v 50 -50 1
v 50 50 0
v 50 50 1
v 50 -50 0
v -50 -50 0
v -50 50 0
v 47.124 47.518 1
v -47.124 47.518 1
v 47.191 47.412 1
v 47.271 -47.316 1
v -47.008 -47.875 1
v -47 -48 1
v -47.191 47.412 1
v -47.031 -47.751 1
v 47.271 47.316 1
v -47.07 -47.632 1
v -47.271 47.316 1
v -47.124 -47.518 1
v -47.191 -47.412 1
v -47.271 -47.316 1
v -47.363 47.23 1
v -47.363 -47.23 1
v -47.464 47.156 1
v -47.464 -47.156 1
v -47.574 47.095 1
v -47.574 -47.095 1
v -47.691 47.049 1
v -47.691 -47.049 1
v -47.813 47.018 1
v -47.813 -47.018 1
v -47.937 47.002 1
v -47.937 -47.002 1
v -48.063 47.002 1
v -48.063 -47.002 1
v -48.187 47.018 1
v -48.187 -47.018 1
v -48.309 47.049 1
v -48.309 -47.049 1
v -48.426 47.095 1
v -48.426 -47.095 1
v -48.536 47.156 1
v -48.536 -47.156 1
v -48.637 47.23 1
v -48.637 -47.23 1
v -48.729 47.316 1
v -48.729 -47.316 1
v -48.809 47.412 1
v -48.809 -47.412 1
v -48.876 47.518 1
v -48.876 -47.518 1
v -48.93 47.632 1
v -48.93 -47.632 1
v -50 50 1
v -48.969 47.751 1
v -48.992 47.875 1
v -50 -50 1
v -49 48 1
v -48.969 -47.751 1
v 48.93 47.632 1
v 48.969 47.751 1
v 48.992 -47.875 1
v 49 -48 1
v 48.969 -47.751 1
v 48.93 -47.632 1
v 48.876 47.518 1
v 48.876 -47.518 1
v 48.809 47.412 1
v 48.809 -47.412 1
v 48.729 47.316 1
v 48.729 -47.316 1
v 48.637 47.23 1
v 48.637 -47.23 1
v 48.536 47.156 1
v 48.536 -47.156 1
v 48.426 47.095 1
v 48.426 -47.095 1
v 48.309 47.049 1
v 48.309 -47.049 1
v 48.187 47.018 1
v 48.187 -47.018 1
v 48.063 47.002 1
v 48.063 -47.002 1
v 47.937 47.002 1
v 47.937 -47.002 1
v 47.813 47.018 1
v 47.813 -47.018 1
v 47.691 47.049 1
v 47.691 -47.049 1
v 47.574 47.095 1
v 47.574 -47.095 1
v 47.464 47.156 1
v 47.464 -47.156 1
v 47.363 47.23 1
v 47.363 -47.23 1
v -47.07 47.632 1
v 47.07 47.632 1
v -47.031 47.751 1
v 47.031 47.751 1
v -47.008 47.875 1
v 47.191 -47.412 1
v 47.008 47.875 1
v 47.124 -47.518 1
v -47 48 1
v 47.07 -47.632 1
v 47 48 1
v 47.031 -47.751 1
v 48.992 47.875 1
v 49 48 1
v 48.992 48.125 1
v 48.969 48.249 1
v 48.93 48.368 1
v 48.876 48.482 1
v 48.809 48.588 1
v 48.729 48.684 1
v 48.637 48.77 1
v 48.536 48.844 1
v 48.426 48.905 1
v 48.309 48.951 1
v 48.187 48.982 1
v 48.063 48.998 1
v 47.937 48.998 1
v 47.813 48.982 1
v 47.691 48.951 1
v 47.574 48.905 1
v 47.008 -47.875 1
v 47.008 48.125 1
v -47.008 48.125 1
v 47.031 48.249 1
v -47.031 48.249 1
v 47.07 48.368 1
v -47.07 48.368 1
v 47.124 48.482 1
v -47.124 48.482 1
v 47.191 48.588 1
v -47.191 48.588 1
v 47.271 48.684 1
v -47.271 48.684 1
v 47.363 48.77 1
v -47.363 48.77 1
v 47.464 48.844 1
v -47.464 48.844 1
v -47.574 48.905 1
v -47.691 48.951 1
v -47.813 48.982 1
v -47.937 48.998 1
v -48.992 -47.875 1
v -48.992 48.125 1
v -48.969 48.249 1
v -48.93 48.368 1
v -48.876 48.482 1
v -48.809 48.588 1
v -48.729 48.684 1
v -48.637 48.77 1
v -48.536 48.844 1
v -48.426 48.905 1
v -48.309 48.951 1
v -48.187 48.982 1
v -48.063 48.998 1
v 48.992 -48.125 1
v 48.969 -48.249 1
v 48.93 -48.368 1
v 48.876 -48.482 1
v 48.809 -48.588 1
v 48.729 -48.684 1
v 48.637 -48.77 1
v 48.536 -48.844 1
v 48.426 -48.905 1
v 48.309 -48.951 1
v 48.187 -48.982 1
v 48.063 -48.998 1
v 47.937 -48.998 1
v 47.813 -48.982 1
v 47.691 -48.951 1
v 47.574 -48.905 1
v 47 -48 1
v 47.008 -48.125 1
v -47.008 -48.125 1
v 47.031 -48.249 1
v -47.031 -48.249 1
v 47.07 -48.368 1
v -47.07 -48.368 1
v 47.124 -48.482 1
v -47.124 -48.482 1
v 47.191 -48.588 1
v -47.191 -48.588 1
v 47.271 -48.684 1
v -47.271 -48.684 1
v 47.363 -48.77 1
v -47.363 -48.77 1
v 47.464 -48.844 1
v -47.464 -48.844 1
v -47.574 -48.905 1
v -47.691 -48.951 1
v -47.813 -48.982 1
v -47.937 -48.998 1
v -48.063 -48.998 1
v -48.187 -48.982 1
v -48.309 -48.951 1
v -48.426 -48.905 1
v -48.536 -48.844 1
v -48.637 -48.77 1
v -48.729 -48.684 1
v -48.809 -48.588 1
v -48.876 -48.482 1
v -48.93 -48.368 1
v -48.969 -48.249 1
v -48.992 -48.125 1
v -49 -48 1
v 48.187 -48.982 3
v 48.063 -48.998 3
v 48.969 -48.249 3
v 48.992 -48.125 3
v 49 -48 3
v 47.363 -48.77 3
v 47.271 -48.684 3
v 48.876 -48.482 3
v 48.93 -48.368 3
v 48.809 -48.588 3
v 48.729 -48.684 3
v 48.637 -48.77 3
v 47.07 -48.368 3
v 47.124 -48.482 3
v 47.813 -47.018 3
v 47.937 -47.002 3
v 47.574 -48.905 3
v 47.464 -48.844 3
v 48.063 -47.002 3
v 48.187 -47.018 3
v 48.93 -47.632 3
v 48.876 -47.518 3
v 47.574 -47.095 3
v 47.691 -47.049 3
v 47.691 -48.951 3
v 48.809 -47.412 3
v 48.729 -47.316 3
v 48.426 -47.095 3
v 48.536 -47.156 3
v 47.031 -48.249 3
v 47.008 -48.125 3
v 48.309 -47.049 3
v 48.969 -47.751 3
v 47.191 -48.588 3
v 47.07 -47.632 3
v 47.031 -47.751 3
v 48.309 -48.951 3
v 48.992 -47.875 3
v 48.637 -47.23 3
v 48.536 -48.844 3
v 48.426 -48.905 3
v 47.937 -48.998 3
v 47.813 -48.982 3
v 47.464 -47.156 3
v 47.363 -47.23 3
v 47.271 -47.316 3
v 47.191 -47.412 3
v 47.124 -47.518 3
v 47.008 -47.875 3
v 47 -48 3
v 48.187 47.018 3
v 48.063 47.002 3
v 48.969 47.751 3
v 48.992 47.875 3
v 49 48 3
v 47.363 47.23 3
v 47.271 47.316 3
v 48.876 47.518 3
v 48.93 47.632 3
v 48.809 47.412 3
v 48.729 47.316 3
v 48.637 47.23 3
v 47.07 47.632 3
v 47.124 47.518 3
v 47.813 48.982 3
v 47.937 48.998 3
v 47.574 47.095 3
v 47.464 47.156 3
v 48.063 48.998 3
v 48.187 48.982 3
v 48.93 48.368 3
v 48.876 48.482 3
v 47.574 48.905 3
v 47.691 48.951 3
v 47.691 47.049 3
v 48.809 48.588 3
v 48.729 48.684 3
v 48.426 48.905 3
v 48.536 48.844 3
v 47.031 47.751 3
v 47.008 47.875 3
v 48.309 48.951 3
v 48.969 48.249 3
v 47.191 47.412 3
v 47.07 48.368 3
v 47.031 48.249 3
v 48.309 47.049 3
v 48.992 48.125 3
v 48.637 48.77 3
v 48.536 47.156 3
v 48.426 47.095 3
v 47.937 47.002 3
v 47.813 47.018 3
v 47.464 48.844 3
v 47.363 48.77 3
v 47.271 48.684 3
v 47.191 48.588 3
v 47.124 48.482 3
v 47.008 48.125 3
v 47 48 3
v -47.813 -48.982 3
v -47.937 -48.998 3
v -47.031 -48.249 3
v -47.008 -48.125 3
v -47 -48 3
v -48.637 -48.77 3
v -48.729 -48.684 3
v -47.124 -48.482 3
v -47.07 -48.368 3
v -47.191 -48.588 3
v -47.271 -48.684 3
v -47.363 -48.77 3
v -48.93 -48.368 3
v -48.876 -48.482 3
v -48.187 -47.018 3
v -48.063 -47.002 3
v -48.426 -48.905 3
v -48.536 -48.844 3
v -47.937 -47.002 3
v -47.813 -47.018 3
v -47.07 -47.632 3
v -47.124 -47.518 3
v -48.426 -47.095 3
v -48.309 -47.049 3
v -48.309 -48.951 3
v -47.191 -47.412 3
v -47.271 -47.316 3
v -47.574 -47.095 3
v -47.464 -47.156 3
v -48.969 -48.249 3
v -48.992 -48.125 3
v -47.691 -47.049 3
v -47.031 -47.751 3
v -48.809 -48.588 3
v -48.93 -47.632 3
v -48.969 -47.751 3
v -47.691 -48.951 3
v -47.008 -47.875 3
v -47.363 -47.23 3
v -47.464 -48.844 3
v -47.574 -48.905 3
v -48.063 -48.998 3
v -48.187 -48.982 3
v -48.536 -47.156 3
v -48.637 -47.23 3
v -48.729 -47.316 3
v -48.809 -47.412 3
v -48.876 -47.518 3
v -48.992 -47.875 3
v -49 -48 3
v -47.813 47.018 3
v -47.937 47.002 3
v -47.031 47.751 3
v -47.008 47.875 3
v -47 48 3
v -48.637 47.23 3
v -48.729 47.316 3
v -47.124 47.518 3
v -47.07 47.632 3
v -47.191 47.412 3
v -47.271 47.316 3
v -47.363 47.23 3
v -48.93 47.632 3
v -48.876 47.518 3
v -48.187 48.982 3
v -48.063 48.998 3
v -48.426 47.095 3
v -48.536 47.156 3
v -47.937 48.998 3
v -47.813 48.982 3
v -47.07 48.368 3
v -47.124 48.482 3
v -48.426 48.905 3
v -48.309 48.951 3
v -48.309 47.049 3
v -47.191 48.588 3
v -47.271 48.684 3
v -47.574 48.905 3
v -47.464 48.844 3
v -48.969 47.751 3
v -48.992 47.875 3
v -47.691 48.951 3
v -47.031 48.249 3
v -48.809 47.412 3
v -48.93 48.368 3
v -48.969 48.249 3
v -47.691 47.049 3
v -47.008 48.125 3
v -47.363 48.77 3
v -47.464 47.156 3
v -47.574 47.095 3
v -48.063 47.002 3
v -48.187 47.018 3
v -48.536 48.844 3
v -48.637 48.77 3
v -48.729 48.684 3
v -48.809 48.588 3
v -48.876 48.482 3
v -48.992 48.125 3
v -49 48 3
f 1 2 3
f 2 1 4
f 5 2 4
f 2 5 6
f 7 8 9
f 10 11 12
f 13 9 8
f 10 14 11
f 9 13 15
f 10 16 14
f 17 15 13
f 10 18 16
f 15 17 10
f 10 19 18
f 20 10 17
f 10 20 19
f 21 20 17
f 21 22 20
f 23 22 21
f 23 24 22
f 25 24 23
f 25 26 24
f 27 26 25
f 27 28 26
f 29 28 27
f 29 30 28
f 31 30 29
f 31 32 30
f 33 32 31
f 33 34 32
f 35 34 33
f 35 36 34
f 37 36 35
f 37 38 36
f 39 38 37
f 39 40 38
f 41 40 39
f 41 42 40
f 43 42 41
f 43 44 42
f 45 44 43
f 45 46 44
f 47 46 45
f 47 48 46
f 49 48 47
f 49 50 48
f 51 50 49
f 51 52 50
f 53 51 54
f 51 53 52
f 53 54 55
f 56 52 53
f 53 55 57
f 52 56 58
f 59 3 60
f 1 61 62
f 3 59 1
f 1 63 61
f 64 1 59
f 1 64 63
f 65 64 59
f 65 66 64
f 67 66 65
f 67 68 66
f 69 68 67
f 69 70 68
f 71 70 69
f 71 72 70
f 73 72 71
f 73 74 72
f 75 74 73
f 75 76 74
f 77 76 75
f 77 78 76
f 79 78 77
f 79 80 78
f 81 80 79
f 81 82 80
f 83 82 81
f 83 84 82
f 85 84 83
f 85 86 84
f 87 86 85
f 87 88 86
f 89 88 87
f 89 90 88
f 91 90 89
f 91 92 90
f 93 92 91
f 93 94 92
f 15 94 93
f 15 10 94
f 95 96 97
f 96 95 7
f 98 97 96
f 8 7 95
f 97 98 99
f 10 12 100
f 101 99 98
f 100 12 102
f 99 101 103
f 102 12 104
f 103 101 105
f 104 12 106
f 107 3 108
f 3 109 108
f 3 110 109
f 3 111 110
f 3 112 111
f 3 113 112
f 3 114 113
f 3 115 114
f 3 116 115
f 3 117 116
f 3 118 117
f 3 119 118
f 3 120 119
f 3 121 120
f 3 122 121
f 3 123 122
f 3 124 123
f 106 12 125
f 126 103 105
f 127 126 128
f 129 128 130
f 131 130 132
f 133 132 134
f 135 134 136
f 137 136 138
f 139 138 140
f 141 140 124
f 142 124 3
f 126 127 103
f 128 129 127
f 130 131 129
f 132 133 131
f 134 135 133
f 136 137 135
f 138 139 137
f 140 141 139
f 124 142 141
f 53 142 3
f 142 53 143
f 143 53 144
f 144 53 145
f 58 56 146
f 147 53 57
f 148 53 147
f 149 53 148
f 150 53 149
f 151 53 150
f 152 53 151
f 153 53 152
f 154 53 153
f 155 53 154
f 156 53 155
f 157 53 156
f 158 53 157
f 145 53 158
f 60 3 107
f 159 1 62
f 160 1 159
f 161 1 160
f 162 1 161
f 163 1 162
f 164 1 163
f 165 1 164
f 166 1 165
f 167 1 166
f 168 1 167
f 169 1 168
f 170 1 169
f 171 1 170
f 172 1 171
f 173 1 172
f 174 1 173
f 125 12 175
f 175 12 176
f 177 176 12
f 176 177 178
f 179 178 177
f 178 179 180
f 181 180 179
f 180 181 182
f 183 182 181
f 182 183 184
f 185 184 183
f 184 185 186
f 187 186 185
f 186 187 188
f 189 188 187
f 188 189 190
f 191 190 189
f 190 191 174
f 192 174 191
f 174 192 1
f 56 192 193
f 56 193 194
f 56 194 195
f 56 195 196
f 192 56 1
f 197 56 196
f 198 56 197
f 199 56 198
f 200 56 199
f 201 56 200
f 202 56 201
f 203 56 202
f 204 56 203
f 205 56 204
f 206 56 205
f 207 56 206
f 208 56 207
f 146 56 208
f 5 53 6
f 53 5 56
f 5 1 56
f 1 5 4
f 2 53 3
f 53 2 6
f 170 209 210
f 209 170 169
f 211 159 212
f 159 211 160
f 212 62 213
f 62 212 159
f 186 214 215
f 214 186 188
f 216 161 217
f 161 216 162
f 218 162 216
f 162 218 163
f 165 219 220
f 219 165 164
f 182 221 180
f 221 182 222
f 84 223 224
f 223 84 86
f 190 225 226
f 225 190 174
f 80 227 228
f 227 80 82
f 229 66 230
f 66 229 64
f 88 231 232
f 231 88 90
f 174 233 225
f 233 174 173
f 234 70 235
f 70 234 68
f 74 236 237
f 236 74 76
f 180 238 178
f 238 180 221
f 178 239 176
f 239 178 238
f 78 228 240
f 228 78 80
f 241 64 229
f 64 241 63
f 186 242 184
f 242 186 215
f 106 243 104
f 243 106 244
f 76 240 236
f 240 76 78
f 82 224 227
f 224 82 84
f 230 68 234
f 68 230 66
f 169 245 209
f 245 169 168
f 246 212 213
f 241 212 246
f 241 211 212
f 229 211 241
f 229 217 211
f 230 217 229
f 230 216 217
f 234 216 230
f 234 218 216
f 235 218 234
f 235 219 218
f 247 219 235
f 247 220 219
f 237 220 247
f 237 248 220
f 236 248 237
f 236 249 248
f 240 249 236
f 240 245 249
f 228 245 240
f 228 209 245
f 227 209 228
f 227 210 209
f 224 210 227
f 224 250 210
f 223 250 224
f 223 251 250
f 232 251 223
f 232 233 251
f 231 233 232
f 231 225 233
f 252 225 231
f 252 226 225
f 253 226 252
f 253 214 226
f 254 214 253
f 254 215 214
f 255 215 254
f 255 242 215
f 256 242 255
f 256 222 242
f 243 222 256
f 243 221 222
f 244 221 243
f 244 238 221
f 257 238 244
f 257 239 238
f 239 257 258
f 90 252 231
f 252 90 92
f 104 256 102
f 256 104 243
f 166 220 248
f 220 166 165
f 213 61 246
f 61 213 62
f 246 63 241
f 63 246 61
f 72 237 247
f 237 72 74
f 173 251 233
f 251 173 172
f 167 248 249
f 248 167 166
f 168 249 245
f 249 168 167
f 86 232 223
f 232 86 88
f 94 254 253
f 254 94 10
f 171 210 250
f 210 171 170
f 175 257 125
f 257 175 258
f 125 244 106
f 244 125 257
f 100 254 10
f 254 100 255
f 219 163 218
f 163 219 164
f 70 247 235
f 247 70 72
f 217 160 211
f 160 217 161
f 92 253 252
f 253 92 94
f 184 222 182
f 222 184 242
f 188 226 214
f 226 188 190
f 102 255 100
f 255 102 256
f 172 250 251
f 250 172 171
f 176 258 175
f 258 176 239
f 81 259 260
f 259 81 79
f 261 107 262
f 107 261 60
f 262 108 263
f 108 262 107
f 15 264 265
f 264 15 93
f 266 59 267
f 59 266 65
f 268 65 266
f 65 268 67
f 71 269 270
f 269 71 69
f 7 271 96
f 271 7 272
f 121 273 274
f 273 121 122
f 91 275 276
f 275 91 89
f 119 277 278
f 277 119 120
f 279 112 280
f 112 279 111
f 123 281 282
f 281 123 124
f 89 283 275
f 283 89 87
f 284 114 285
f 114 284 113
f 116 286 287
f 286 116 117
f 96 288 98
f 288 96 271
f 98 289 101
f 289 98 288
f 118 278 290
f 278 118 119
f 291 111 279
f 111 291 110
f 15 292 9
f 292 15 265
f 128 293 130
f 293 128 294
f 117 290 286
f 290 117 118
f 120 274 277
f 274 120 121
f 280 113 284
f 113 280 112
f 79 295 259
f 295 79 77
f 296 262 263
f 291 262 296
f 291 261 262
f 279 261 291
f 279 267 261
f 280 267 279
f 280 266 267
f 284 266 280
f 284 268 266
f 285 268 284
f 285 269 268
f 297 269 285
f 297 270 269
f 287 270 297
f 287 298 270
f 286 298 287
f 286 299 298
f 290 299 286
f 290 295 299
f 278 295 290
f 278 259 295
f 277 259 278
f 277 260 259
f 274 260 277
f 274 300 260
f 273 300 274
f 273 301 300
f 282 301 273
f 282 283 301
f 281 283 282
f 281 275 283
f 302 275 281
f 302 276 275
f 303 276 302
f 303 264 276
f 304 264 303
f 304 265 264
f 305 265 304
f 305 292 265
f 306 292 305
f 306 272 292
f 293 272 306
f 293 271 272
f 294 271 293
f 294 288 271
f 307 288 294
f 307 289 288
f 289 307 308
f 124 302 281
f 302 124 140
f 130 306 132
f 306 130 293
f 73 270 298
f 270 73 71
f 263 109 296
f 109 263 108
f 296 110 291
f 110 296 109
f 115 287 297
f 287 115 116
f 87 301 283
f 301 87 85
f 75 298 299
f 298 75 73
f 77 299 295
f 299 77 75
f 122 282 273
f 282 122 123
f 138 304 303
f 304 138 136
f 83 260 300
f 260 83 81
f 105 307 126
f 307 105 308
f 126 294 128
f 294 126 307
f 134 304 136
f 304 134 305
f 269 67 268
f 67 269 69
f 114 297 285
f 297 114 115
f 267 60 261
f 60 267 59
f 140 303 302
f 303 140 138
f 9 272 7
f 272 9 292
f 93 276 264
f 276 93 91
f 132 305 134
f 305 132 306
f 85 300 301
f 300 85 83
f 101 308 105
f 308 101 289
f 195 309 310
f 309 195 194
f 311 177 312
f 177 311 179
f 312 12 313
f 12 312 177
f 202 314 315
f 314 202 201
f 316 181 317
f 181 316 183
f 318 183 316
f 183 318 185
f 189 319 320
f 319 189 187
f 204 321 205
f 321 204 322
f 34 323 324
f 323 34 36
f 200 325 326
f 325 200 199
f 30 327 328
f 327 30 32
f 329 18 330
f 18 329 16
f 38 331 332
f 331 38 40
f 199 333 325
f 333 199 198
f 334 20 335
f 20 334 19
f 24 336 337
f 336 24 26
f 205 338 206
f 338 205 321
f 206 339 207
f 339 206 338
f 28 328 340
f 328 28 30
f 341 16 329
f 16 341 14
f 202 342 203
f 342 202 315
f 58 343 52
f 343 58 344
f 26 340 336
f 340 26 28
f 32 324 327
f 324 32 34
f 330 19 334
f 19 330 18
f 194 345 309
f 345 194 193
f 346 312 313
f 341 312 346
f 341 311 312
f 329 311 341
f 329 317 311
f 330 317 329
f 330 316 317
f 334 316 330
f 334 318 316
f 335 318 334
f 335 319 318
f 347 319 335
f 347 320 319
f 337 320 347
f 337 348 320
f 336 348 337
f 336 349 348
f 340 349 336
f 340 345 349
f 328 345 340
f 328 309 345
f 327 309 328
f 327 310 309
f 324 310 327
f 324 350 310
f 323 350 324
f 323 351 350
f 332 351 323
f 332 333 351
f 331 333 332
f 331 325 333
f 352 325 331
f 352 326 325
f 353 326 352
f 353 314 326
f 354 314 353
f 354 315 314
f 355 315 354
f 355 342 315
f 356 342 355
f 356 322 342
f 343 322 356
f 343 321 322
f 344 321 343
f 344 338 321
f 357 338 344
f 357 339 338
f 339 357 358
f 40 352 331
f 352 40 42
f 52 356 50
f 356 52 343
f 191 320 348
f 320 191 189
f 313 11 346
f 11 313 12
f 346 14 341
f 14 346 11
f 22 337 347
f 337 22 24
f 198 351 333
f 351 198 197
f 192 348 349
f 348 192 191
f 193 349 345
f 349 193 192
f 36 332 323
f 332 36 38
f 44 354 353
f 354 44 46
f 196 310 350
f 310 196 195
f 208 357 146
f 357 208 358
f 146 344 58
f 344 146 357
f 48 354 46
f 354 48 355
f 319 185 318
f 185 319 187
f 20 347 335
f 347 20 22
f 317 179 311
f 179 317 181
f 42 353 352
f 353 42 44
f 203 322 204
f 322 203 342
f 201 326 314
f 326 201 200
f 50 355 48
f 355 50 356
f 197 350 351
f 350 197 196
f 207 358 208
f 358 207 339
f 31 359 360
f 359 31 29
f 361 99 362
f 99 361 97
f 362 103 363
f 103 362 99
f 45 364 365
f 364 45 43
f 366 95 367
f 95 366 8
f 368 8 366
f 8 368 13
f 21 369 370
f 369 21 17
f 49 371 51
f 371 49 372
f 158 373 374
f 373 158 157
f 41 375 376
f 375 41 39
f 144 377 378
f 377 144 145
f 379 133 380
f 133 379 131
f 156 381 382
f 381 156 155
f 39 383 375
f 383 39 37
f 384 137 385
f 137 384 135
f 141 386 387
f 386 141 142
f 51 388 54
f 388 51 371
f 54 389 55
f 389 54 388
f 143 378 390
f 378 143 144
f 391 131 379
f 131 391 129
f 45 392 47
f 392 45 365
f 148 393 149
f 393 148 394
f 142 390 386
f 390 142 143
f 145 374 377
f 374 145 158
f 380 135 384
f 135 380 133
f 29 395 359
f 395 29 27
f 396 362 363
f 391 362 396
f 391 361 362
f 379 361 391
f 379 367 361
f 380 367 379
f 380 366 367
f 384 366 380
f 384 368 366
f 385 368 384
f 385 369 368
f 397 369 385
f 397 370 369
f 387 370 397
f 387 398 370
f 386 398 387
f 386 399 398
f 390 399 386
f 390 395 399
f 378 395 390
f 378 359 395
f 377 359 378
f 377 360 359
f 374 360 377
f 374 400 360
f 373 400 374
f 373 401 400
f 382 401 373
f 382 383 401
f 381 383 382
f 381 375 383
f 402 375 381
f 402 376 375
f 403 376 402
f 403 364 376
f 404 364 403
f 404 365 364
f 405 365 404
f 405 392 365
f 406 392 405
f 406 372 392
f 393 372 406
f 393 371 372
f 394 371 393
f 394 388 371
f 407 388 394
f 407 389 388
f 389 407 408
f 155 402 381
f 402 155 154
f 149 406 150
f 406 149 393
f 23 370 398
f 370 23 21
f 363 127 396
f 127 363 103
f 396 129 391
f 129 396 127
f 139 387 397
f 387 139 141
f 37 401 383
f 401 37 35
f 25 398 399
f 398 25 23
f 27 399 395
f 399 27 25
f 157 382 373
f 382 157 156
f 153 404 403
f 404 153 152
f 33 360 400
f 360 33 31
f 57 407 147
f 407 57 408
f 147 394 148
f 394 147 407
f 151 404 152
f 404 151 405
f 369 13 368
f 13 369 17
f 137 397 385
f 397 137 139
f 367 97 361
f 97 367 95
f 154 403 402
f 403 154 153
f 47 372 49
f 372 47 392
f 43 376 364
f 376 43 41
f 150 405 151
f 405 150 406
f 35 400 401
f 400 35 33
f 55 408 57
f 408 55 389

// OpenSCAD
module cover(x,y,t) {
    n=2;
    d=2;
    cube([x,y,t]);

    translate([x-d,y-d,-2])
    cylinder(h=n,d=d, $fn=50);
    translate([x-d,d,-2])
    cylinder(h=n,d=d, $fn=50);
    translate([d,y-d,-2])
    cylinder(h=n,d=d, $fn=50);
    translate([d,d,-2])
    cylinder(h=n,d=d, $fn=50);
}

// prints

translate([-50,50,1])
rotate([180,0,0])
cover(100,100,1);
